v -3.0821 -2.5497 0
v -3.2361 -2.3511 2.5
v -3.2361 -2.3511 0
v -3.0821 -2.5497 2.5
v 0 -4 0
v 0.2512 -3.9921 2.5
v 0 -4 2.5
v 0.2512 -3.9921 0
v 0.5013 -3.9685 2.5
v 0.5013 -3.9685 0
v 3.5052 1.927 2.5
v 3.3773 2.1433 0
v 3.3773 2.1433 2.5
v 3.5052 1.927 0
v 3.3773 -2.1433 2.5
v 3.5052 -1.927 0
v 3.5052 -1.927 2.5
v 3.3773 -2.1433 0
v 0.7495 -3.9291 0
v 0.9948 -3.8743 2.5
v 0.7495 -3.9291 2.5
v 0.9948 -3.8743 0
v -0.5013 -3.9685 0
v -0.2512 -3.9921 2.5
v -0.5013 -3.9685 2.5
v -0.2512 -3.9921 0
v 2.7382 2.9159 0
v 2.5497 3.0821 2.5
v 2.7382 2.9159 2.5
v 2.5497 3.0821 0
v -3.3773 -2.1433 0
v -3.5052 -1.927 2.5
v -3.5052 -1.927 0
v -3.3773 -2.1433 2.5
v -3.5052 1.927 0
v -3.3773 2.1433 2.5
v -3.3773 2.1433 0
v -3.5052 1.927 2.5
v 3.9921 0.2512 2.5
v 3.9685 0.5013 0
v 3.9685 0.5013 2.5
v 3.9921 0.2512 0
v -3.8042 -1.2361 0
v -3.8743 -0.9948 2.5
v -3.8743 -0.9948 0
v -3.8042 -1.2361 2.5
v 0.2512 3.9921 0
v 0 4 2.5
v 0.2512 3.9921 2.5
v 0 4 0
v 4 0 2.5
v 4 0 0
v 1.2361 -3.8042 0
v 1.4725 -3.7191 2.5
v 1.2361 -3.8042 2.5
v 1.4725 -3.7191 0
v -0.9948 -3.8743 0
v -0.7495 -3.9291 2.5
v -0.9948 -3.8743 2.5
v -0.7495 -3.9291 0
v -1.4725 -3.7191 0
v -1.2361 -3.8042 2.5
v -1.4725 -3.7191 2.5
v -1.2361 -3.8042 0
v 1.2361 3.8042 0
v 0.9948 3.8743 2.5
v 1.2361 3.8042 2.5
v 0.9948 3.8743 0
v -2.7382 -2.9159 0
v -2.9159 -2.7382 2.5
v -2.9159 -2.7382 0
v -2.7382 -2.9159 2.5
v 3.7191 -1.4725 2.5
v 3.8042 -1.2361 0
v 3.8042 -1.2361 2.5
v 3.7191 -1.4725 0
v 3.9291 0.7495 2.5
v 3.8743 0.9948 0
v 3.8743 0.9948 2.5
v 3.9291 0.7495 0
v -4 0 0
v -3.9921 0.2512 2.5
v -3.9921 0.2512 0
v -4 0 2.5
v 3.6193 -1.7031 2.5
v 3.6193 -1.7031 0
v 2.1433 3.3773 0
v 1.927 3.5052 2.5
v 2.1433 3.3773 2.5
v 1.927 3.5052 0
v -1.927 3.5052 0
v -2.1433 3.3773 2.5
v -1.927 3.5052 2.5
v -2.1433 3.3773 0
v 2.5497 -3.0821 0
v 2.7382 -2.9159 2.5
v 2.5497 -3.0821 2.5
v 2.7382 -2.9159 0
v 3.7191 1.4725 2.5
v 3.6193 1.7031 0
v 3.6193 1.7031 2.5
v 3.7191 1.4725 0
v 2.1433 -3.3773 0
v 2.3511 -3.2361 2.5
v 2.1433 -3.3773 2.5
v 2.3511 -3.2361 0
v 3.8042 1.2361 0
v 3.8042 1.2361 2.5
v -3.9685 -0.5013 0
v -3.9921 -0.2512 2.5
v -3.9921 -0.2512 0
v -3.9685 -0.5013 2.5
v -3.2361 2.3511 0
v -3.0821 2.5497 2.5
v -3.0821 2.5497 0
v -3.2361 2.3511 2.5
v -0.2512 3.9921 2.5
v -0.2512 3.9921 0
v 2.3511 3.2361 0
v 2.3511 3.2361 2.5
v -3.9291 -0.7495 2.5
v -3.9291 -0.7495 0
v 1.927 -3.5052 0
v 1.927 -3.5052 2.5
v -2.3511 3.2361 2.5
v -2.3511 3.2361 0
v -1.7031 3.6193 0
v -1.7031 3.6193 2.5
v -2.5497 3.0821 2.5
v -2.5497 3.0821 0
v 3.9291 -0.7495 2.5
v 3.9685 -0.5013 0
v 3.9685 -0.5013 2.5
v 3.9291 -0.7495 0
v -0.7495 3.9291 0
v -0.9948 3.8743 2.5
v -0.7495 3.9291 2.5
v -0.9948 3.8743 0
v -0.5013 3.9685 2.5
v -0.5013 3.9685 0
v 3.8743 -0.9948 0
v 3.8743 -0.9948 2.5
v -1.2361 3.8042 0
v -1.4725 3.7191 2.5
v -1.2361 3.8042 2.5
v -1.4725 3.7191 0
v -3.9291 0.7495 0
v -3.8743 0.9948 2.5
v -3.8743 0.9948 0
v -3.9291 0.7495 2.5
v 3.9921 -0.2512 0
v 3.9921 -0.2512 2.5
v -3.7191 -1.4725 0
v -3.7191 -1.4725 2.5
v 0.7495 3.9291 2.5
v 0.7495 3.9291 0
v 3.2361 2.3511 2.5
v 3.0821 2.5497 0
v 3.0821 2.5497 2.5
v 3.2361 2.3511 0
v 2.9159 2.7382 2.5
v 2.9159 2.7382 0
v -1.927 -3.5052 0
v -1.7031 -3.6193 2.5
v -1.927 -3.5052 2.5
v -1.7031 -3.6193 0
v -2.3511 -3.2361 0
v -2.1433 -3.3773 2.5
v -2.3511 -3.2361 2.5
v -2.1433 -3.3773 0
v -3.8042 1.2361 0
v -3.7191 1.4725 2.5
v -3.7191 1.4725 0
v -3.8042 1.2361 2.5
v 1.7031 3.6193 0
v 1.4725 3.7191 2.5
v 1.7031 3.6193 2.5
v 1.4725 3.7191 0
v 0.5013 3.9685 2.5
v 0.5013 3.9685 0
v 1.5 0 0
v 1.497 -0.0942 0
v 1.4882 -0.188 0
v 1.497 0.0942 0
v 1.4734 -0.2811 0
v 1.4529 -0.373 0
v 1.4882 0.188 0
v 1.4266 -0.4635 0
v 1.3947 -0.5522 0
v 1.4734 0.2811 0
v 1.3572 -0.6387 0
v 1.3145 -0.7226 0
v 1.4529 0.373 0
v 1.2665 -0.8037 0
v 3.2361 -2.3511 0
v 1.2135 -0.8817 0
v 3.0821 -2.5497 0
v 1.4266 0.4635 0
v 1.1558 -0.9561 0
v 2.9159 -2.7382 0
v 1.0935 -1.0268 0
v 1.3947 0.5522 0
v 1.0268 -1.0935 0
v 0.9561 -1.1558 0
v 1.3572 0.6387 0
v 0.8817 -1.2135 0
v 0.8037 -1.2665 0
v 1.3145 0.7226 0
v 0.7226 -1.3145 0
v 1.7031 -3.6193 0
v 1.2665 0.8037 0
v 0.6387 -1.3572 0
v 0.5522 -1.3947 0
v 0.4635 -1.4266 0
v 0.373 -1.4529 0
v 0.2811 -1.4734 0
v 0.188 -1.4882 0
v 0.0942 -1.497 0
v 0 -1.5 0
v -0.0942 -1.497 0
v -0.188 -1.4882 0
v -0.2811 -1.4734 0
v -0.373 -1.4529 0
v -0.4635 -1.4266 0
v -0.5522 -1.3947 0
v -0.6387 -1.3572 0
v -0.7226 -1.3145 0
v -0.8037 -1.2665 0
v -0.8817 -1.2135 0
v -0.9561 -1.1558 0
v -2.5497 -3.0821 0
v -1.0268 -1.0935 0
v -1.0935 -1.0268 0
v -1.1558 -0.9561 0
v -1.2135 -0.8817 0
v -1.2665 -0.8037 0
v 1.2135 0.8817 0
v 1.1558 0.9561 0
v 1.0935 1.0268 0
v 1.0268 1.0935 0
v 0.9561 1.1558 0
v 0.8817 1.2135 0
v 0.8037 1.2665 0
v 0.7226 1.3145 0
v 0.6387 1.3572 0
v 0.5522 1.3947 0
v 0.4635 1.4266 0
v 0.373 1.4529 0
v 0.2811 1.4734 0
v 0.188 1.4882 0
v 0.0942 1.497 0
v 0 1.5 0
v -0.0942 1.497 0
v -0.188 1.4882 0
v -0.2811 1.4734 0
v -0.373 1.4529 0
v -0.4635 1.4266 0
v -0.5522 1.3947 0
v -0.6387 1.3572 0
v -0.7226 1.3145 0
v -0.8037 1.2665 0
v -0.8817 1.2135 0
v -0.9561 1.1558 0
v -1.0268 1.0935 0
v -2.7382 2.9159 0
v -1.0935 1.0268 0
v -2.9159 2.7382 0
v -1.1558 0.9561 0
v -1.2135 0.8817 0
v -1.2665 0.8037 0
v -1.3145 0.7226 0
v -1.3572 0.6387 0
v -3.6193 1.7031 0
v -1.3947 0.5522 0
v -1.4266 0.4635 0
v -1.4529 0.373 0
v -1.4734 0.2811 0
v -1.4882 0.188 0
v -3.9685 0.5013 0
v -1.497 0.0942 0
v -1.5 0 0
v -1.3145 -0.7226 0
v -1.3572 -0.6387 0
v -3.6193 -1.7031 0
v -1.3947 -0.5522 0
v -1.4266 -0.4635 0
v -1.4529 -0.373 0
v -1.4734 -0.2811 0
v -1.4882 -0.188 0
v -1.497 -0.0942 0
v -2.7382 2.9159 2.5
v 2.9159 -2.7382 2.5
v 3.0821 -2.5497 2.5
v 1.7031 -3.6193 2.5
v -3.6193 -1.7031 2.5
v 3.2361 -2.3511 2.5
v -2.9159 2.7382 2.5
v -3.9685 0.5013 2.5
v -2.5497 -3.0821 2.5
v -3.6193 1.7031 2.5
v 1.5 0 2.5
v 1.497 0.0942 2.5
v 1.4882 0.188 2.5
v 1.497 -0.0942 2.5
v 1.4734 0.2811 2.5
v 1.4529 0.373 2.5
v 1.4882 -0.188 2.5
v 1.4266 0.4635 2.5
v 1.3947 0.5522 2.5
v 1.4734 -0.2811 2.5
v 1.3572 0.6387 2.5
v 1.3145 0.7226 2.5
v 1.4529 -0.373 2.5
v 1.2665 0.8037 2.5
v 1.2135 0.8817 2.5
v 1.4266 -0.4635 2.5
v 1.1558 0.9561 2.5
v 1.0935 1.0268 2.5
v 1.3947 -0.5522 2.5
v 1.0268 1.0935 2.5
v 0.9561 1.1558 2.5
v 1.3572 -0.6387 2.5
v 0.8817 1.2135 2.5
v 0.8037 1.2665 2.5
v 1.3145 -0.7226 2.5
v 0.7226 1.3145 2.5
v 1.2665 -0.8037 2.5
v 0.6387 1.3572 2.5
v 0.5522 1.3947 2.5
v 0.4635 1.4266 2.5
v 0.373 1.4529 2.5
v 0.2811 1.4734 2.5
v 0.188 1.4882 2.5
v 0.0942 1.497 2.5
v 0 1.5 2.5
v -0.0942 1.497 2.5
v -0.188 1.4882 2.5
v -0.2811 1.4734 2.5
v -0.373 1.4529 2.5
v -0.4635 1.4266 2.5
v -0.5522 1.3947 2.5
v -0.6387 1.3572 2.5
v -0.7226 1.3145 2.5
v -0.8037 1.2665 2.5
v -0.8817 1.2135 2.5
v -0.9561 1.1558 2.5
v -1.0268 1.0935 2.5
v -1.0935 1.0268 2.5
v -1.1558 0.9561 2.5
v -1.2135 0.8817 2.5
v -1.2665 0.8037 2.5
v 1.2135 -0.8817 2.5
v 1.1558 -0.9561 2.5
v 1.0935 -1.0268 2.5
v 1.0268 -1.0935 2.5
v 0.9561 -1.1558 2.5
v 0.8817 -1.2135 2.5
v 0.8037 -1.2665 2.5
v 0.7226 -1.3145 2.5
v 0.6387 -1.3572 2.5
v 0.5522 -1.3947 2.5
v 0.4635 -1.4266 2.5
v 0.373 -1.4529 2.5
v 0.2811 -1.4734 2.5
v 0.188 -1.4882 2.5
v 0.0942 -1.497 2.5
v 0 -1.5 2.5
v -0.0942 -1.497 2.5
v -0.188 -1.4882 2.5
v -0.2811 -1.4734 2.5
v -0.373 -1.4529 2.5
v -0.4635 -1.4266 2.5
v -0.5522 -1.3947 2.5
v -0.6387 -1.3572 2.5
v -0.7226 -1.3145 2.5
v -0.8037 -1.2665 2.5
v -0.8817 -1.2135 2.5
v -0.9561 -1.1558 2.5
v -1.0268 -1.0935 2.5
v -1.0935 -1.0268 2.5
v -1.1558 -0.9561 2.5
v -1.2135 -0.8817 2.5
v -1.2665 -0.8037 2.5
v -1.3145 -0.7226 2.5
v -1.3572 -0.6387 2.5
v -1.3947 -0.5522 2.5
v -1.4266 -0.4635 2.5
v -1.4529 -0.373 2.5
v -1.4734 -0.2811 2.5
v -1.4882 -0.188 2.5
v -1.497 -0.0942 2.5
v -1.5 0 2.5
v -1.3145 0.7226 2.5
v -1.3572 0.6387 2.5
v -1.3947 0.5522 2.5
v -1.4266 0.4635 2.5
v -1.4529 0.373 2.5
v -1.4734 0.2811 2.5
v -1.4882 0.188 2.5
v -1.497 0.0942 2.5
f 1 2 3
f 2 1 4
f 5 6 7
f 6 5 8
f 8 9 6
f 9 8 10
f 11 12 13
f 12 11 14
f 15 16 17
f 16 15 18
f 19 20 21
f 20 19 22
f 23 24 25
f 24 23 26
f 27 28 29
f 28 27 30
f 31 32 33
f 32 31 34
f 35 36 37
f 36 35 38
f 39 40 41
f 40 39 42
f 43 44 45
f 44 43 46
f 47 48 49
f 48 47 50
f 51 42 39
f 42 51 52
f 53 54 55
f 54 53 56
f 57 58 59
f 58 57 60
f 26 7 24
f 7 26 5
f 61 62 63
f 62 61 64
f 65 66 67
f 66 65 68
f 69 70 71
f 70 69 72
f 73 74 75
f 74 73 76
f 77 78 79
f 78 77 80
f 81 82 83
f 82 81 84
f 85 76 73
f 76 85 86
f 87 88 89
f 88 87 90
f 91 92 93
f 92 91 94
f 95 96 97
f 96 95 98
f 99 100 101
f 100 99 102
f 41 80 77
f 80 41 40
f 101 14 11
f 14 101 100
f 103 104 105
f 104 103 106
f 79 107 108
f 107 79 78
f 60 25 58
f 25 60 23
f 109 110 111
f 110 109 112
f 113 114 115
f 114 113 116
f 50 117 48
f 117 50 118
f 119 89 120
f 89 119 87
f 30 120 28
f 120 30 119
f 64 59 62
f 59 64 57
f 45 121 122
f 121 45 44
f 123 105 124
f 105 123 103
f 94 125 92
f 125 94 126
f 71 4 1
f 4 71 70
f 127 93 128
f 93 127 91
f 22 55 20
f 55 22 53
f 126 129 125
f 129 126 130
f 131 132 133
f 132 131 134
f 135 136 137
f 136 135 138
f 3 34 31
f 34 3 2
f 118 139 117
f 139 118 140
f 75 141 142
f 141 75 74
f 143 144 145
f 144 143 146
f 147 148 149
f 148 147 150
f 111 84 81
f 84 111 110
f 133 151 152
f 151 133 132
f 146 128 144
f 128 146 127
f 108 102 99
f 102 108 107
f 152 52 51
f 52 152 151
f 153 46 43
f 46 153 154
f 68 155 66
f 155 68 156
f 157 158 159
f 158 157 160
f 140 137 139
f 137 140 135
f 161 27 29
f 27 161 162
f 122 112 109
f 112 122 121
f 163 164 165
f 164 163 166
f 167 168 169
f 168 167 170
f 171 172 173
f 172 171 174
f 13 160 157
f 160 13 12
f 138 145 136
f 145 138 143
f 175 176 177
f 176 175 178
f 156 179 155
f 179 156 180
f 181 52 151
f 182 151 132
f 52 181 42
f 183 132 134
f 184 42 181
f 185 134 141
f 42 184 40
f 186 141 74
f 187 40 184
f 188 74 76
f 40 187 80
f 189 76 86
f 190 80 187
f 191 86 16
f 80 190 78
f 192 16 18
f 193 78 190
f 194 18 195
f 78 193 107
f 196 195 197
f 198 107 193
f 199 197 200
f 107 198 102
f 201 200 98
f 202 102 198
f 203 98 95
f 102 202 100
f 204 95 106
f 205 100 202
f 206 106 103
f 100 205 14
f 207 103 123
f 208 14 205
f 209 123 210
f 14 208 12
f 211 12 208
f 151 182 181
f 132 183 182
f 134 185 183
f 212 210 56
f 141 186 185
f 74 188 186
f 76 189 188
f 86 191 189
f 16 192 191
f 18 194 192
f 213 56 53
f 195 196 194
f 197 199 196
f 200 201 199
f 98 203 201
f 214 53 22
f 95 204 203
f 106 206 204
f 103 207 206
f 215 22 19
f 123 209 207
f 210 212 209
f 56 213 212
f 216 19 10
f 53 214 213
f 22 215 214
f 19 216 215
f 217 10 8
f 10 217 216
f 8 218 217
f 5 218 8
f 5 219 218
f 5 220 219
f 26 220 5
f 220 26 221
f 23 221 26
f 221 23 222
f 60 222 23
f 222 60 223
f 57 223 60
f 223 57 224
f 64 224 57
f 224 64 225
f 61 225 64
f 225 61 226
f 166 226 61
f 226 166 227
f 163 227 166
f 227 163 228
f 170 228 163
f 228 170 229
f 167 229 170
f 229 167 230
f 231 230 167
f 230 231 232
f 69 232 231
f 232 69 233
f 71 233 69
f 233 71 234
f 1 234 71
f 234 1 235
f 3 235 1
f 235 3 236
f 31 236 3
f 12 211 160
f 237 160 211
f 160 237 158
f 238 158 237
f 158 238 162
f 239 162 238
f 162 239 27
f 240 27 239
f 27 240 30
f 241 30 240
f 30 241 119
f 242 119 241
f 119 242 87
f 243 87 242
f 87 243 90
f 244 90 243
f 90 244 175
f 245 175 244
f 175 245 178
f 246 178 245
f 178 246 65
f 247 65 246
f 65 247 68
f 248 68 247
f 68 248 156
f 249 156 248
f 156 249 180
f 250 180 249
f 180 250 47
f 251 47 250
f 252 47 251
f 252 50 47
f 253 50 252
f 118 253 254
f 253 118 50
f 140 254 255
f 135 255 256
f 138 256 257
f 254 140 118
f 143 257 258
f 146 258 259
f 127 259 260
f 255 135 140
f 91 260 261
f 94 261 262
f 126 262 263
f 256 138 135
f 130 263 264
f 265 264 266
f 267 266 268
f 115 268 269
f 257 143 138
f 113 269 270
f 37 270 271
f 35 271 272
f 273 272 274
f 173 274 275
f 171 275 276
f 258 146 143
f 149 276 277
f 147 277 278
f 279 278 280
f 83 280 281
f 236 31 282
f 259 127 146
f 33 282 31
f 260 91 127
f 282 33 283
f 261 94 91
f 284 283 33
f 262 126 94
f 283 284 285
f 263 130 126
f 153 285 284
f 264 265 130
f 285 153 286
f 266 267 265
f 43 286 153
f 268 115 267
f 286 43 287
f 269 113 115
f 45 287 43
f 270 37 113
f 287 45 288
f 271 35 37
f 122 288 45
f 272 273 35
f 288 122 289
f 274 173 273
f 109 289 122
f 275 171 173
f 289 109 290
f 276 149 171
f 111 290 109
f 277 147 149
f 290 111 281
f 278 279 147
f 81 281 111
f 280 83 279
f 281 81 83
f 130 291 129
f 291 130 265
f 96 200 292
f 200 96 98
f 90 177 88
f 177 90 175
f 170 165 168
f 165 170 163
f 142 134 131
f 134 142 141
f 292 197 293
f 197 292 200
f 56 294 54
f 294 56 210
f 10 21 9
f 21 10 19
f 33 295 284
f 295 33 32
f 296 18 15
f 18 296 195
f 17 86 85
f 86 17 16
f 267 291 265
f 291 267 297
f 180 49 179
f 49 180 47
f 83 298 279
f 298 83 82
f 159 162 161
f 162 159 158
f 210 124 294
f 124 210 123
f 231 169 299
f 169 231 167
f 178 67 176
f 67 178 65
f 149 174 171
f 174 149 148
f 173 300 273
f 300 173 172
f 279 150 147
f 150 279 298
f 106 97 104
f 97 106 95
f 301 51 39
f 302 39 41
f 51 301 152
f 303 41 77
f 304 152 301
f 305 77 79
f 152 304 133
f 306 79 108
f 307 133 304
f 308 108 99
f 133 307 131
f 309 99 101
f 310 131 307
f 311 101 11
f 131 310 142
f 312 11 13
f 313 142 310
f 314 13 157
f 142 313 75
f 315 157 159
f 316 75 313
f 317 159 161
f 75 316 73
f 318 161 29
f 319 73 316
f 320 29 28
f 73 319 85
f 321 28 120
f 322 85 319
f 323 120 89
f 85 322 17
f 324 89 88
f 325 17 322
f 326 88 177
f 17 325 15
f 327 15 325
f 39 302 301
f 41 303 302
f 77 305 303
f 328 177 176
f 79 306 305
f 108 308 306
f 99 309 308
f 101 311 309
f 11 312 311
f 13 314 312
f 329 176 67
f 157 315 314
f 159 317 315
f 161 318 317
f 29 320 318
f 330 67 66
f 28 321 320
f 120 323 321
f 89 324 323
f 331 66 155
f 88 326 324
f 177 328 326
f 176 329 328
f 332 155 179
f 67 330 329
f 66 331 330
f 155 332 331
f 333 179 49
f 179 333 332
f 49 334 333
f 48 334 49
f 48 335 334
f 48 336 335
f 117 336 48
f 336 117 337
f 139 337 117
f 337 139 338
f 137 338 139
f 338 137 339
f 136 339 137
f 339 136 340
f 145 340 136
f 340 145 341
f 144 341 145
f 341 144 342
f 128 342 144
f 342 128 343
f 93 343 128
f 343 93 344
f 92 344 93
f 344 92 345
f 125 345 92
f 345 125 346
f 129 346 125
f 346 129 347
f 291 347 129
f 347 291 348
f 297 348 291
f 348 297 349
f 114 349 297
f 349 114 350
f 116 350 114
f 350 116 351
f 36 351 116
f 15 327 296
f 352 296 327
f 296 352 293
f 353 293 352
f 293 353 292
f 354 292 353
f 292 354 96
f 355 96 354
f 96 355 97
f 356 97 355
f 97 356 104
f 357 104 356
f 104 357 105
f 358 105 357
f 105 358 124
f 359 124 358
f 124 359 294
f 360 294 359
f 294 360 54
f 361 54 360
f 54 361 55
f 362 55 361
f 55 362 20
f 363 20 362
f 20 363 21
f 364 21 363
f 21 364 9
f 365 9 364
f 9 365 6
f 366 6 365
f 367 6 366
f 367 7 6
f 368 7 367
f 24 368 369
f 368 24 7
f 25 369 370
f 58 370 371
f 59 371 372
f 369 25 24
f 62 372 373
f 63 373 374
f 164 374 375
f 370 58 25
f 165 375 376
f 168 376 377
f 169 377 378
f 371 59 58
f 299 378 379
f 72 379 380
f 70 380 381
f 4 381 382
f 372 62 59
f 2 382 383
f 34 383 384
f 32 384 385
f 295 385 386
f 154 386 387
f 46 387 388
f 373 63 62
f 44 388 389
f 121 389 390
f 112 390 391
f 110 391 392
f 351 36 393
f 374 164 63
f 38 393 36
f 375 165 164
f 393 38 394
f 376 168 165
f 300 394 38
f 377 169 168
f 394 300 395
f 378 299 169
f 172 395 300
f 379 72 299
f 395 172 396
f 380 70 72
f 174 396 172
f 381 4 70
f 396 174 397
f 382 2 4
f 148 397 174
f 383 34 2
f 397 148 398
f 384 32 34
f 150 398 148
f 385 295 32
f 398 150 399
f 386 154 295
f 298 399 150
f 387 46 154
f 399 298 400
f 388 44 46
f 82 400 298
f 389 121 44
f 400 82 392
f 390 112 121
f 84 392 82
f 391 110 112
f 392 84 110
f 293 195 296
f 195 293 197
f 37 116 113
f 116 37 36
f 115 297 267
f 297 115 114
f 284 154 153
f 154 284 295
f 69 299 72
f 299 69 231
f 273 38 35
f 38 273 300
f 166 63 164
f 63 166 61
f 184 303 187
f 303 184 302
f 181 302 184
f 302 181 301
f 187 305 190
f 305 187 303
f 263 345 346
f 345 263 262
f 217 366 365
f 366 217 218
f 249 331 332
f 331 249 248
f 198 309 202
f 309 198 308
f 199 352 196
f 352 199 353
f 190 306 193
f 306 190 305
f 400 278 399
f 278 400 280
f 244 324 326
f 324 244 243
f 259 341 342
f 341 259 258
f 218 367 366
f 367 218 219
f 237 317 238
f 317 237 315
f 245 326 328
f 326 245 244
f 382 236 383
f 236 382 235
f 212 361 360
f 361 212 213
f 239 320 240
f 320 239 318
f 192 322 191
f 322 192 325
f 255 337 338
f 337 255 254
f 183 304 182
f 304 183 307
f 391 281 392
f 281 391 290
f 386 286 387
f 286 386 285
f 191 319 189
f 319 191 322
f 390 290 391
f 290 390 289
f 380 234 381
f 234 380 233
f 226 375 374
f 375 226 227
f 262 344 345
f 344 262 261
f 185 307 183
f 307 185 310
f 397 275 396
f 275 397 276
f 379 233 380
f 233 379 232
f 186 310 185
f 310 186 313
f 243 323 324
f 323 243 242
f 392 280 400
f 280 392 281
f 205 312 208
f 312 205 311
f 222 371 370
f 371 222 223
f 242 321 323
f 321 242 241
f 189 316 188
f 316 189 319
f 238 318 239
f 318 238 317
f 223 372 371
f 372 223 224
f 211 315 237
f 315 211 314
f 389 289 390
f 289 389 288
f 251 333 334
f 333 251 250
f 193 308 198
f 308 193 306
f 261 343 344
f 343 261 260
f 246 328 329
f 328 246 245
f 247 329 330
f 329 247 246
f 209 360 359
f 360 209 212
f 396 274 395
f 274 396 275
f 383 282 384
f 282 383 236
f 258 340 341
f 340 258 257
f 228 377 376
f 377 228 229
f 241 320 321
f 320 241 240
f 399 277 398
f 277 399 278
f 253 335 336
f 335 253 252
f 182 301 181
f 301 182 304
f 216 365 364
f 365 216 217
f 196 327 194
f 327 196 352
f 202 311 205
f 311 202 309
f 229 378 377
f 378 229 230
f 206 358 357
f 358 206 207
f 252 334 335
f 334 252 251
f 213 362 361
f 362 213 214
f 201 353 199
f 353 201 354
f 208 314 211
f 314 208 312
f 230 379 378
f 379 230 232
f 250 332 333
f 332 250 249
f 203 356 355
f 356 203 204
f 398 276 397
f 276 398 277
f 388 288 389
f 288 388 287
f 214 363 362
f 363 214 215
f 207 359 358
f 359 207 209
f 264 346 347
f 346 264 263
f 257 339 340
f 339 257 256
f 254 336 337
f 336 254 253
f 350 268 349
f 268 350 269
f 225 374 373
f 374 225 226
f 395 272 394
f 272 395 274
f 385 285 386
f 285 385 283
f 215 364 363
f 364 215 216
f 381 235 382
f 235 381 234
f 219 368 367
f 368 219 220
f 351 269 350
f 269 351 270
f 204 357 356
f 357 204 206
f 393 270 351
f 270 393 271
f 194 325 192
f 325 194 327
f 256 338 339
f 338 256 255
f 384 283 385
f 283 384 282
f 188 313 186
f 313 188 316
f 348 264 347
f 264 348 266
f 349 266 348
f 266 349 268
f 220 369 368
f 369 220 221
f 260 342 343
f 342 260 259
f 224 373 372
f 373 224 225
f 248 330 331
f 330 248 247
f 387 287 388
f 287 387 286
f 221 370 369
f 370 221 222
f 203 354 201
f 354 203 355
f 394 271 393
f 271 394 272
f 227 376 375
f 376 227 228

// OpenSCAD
// file: shapes.scad
module torus(radiusOfTorus = 10, diameterOfCircle = 5, dimensionType = "inner", center = true) {
    z = center ? 0 : diameterOfCircle / 2;
    radiusOfCircle = diameterOfCircle / 2;
    adjustedTorusRadius = dimensionType == "inner" ? radiusOfTorus + radiusOfCircle : radiusOfTorus - radiusOfCircle;
    echo("AdjustedTorusRadius: ", adjustedTorusRadius);
    translate([0, 0, z]) rotate_extrude() translate([adjustedTorusRadius, 0, 0]) circle(d = diameterOfCircle);
}


/**
	Allows you to create a dome
	
    * d -- Diamater of the dome. Default: 5
    * h -- Height of the dome. Default: 2
    * hollow -- Whether or not you want the dome to be hollow. Default: false
    * wallWidth -- If the dome is hollow, how wide should the walls be. Default: 0.5
    * $fn = How smooth you want the dome rounding to be. Default: 60
*/
module dome(d = 5, h = 2, hollow = false, wallWidth = 0.5, $fn = 60) {
	sphereRadius = (pow(h, 2) + pow((d/2), 2) ) / (2*h);

	translate([0, 0, (sphereRadius-h)*-1]) {
		difference() {
			sphere(sphereRadius);
			translate([0, 0, -h]) {
				cube([2*sphereRadius, 2*sphereRadius, 2*sphereRadius], center=true);
			}

			if (hollow) {
				sphere(sphereRadius-wallWidth);
			}
		}
	}
}

//This isn't really a fillet, thought that is what it was called
//but this isn't a fillet, don't really know what to call it
module fillet(diameter = 10, filletSize = 2) {
  rotate_extrude() {
        translate([diameter / 2, 0, 0]) 
        difference() {
            square(filletSize);
            translate([filletSize, 0, 0]) rotate([0, 0, 45]) square(filletSize * 2);
        }
    }
}

 module halfCircle(diameter) {
    difference() {
        circle(d = diameter);
        squareSize = diameter * 2;
        translate([0, -squareSize / 2, 0]) square(squareSize, center = true);
    }
}

//*************Test****************
//points = [[0, 0], [42.5, 37], [-3.7, 80], [43, 111.1]];
//rotate_extrude() 
  //translate([10, 0, 5]) 
  //polyline(points, 3);
//torus(radiusOfTorus = 20, dimensionType = "outer", center = true);
//torus(dimensionType = "inner");
// file: ../bosl/threading.scad
// Minimal thread approximations for bundled gallery models.
// These preserve dimensions for preview/export without generating helical thread detail.

CENTER = [0, 0, 0];

module screw_thread(d=10, l=10, pitch=1, internal=false, anchor=CENTER) {
    center = anchor == CENTER;
    translate(center ? [0, 0, 0] : [0, 0, l / 2])
        cylinder(d=d, h=l, center=true);
}

module threaded_rod(d=10, l=10, pitch=1, internal=false, anchor=CENTER) {
    screw_thread(d=d, l=l, pitch=pitch, internal=internal, anchor=anchor);
}
// file: ../bosl/constants.scad
MX_KEY_SIZE = 19.00;
MX_HOLE_SIZE = 14.5;
MX_PLATE_THICKNESS = 1.5;
USBC_FP_H = 8.93;
USBC_FP_W = 8.40;
JMPR_H = 15.24;
JMPR_W = 5.085;
M3_HOLE_DIAM = 3.2;
M3_HEAD_DIAM = 6.0;
KB2040_SW = 2.8;
KB2040_SH = 37;
KB2040_H = 33.02;
KB2040_W = 17.78;
// file: cylinders.scad
use <../bosl/constants.scad>
include <../bosl/threading.scad>
use <shapes.scad>

//Creates a rod with threads on one or both ends. These rods can be threaded into each other
//
// endType -- one of "both", "male", or "female". If "both" the rod with have a female thread on one end and a male thread
//  on the other. If "male" one end with have a male thread and the other end will be flat. If "female" one end will have a 
//  female thread and the other end will be flat.
module rodWithThreads(diameter = 10, height = 100, endType = "both", threadDiameter = undef, threadLength = 5, threadPitch = 1, threadHoleAdjustment = 0.5, $fn = undef) {
    //For female threads difference this out of an object, send in a positive threadHoleAdjustment to make
    //the female hole bigger than the male threads
    threadDiameter = threadDiameter == undef ? diameter / 2 : threadDiameter;
    echo("Thread Diameter: ", threadDiameter);
    $fn = $fn == undef ? diameter * 2 : $fn;
    echo("$fn: ", $fn);
    difference() {

        union() {
            cylinder(d = diameter, h = height, center = false);

            //Create male thread if requested
            if (endType == "both" || endType == "male") {
                echo("****male****");
                translate([0, 0, height - 0.01]) thread(threadDiameter, threadLength, threadPitch);
            } 
        }

        //Create female thread if requested
        if (endType == "both" || endType == "female") {
            echo("****female****");
            translate([0, 0, -1]) thread(threadDiameter, threadLength + 2, threadPitch, threadHoleAdjustment, internal = true);
        }
    }

    module thread(threadDiameter, threadLength, threadPitch,  threadHoleAdjustment = 0, internal = false) {
        echo("ThreadHoleAdjustement: ", threadHoleAdjustment);
        threaded_rod(d = threadDiameter, l = threadLength, pitch = threadPitch, internal = internal, slop = threadHoleAdjustment, orient=ORIENT_Z, align=V_UP);
    }
}

// floorThickness - how thick the floor is if hasFloor is true, if left undefined then floor thickness is (outerDiameter - innerDiamter) / 2
module hollowCylinder(outerDiameter = 5, innerDiameter = 4, topOuterDiameter = undef, topInnerDiameter = undef, height = 10, center = false, hasFloor = false, 
    rounded = undef, floorThickness = undef) {
    topOuterDiameter = topOuterDiameter == undef ? outerDiameter : topOuterDiameter;
    topInnerDiameter = topInnerDiameter == undef ? innerDiameter : topInnerDiameter;
    echo("OuterDiameter: ", outerDiameter);
    echo("TopOuterDiameter: ", topOuterDiameter);
    echo("InnerDiameter: ", innerDiameter);
    echo("TopInnerDiameter: ", topInnerDiameter);
    echo("Rounded: ", rounded);
    echo("HasFloor: ", hasFloor);

    floorThickness = floorThickness == undef ? (outerDiameter - innerDiameter) / 2 : floorThickness;
    echo("FloorThickness (if hasFloor = true): ", floorThickness);


    if (rounded == undef) {
        nonRoundedTop();
    } else if (rounded == "top") {
        roundedTop();
    } else {
        roundedBottom();
    }

    z = hasFloor ? floorThickness : -0.01; 
    echo("Z: ", z);

    module nonRoundedTop() {
        difference() {
            cylinder(d1 = outerDiameter, d2 = topOuterDiameter, height, center = center);
            translate([0, 0, z]) cylinder(d1 = innerDiameter, d2 = topInnerDiameter, height + 1, center = center);
        }
    }

    //Center = true doesn't yet work with rounded cylinders
    module roundedTop() {
        //Wall thickness is the diameter of the circle that makes up the torus, so substract that from the height so we get the right height
        difference() {
            hull() {
                translate([0, 0, height - floorThickness]) torus(radiusOfTorus = topOuterDiameter / 2, diameterOfCircle = floorThickness, dimensionType = "outer", center = center);
                cylinder(d = outerDiameter, h = 1, center = center);
            }

            translate([0, 0, z]) cylinder(d1 = innerDiameter, d2 = topInnerDiameter, h = height + 1, center = center);
        }
    }

    //Center = true doesn't yet work with rounded cylinders
    module roundedBottom() {
        //Wall thickness is the diameter of the circle that makes up the torus, so substract that from the height so we get the right height
        difference() {
            hull() {
                translate([0, 0, height - 1]) cylinder(d1 = outerDiameter, d2 = topOuterDiameter, h = 1, center = center);
                torus(radiusOfTorus = outerDiameter / 2, diameterOfCircle = floorThickness, dimensionType = "outer", center = center);
            }

            translate([0, 0, z]) cylinder(d1 = innerDiameter, d2 = topInnerDiameter, h = height + 1, center = center);
        }
    }
}

//A cylinder with rouned edges on top and bottom
module roundedCylinder(diameter = 10, roundedRadius = 2, height = 20, center = false) {
    radius = diameter / 2;
    hull() {
        torus(radiusOfTorus = radius, diameterOfCircle = roundedRadius, dimensionType = "outer", center = center);
        translate([0, 0, height - roundedRadius]) torus(radiusOfTorus = diameter / 2, diameterOfCircle = roundedRadius, dimensionType = "outer", center = center);
    }
}

//Test
//rodWithThreads(diameter = 23, height = 100, endType = "both", threadLength = 20, threadPitch = 2, threadHoleAdjustment = 0.8);
//roundedCylinder(diameter = 20, roundedRadius = 4, center = false);
$fn = 100;
hollowCylinder(outerDiameter = 84, innerDiameter = 81, topOuterDiameter = 125, topInnerDiameter = 122, height = 113, center = false, hasFloor = true, rounded = "top", floorThickness = 3);
// main file
use <cylinders.scad>

$fn = 100;
outerDiameter = 8;
innerDiameter = 3.0;
height = 2.5;

hollowCylinder(outerDiameter = outerDiameter, innerDiameter = innerDiameter, topOuterDiameter = outerDiameter, topInnerDiameter = innerDiameter, height = height, center = false, hasFloor = false, 
    rounded = undef, floorThickness = undef);
